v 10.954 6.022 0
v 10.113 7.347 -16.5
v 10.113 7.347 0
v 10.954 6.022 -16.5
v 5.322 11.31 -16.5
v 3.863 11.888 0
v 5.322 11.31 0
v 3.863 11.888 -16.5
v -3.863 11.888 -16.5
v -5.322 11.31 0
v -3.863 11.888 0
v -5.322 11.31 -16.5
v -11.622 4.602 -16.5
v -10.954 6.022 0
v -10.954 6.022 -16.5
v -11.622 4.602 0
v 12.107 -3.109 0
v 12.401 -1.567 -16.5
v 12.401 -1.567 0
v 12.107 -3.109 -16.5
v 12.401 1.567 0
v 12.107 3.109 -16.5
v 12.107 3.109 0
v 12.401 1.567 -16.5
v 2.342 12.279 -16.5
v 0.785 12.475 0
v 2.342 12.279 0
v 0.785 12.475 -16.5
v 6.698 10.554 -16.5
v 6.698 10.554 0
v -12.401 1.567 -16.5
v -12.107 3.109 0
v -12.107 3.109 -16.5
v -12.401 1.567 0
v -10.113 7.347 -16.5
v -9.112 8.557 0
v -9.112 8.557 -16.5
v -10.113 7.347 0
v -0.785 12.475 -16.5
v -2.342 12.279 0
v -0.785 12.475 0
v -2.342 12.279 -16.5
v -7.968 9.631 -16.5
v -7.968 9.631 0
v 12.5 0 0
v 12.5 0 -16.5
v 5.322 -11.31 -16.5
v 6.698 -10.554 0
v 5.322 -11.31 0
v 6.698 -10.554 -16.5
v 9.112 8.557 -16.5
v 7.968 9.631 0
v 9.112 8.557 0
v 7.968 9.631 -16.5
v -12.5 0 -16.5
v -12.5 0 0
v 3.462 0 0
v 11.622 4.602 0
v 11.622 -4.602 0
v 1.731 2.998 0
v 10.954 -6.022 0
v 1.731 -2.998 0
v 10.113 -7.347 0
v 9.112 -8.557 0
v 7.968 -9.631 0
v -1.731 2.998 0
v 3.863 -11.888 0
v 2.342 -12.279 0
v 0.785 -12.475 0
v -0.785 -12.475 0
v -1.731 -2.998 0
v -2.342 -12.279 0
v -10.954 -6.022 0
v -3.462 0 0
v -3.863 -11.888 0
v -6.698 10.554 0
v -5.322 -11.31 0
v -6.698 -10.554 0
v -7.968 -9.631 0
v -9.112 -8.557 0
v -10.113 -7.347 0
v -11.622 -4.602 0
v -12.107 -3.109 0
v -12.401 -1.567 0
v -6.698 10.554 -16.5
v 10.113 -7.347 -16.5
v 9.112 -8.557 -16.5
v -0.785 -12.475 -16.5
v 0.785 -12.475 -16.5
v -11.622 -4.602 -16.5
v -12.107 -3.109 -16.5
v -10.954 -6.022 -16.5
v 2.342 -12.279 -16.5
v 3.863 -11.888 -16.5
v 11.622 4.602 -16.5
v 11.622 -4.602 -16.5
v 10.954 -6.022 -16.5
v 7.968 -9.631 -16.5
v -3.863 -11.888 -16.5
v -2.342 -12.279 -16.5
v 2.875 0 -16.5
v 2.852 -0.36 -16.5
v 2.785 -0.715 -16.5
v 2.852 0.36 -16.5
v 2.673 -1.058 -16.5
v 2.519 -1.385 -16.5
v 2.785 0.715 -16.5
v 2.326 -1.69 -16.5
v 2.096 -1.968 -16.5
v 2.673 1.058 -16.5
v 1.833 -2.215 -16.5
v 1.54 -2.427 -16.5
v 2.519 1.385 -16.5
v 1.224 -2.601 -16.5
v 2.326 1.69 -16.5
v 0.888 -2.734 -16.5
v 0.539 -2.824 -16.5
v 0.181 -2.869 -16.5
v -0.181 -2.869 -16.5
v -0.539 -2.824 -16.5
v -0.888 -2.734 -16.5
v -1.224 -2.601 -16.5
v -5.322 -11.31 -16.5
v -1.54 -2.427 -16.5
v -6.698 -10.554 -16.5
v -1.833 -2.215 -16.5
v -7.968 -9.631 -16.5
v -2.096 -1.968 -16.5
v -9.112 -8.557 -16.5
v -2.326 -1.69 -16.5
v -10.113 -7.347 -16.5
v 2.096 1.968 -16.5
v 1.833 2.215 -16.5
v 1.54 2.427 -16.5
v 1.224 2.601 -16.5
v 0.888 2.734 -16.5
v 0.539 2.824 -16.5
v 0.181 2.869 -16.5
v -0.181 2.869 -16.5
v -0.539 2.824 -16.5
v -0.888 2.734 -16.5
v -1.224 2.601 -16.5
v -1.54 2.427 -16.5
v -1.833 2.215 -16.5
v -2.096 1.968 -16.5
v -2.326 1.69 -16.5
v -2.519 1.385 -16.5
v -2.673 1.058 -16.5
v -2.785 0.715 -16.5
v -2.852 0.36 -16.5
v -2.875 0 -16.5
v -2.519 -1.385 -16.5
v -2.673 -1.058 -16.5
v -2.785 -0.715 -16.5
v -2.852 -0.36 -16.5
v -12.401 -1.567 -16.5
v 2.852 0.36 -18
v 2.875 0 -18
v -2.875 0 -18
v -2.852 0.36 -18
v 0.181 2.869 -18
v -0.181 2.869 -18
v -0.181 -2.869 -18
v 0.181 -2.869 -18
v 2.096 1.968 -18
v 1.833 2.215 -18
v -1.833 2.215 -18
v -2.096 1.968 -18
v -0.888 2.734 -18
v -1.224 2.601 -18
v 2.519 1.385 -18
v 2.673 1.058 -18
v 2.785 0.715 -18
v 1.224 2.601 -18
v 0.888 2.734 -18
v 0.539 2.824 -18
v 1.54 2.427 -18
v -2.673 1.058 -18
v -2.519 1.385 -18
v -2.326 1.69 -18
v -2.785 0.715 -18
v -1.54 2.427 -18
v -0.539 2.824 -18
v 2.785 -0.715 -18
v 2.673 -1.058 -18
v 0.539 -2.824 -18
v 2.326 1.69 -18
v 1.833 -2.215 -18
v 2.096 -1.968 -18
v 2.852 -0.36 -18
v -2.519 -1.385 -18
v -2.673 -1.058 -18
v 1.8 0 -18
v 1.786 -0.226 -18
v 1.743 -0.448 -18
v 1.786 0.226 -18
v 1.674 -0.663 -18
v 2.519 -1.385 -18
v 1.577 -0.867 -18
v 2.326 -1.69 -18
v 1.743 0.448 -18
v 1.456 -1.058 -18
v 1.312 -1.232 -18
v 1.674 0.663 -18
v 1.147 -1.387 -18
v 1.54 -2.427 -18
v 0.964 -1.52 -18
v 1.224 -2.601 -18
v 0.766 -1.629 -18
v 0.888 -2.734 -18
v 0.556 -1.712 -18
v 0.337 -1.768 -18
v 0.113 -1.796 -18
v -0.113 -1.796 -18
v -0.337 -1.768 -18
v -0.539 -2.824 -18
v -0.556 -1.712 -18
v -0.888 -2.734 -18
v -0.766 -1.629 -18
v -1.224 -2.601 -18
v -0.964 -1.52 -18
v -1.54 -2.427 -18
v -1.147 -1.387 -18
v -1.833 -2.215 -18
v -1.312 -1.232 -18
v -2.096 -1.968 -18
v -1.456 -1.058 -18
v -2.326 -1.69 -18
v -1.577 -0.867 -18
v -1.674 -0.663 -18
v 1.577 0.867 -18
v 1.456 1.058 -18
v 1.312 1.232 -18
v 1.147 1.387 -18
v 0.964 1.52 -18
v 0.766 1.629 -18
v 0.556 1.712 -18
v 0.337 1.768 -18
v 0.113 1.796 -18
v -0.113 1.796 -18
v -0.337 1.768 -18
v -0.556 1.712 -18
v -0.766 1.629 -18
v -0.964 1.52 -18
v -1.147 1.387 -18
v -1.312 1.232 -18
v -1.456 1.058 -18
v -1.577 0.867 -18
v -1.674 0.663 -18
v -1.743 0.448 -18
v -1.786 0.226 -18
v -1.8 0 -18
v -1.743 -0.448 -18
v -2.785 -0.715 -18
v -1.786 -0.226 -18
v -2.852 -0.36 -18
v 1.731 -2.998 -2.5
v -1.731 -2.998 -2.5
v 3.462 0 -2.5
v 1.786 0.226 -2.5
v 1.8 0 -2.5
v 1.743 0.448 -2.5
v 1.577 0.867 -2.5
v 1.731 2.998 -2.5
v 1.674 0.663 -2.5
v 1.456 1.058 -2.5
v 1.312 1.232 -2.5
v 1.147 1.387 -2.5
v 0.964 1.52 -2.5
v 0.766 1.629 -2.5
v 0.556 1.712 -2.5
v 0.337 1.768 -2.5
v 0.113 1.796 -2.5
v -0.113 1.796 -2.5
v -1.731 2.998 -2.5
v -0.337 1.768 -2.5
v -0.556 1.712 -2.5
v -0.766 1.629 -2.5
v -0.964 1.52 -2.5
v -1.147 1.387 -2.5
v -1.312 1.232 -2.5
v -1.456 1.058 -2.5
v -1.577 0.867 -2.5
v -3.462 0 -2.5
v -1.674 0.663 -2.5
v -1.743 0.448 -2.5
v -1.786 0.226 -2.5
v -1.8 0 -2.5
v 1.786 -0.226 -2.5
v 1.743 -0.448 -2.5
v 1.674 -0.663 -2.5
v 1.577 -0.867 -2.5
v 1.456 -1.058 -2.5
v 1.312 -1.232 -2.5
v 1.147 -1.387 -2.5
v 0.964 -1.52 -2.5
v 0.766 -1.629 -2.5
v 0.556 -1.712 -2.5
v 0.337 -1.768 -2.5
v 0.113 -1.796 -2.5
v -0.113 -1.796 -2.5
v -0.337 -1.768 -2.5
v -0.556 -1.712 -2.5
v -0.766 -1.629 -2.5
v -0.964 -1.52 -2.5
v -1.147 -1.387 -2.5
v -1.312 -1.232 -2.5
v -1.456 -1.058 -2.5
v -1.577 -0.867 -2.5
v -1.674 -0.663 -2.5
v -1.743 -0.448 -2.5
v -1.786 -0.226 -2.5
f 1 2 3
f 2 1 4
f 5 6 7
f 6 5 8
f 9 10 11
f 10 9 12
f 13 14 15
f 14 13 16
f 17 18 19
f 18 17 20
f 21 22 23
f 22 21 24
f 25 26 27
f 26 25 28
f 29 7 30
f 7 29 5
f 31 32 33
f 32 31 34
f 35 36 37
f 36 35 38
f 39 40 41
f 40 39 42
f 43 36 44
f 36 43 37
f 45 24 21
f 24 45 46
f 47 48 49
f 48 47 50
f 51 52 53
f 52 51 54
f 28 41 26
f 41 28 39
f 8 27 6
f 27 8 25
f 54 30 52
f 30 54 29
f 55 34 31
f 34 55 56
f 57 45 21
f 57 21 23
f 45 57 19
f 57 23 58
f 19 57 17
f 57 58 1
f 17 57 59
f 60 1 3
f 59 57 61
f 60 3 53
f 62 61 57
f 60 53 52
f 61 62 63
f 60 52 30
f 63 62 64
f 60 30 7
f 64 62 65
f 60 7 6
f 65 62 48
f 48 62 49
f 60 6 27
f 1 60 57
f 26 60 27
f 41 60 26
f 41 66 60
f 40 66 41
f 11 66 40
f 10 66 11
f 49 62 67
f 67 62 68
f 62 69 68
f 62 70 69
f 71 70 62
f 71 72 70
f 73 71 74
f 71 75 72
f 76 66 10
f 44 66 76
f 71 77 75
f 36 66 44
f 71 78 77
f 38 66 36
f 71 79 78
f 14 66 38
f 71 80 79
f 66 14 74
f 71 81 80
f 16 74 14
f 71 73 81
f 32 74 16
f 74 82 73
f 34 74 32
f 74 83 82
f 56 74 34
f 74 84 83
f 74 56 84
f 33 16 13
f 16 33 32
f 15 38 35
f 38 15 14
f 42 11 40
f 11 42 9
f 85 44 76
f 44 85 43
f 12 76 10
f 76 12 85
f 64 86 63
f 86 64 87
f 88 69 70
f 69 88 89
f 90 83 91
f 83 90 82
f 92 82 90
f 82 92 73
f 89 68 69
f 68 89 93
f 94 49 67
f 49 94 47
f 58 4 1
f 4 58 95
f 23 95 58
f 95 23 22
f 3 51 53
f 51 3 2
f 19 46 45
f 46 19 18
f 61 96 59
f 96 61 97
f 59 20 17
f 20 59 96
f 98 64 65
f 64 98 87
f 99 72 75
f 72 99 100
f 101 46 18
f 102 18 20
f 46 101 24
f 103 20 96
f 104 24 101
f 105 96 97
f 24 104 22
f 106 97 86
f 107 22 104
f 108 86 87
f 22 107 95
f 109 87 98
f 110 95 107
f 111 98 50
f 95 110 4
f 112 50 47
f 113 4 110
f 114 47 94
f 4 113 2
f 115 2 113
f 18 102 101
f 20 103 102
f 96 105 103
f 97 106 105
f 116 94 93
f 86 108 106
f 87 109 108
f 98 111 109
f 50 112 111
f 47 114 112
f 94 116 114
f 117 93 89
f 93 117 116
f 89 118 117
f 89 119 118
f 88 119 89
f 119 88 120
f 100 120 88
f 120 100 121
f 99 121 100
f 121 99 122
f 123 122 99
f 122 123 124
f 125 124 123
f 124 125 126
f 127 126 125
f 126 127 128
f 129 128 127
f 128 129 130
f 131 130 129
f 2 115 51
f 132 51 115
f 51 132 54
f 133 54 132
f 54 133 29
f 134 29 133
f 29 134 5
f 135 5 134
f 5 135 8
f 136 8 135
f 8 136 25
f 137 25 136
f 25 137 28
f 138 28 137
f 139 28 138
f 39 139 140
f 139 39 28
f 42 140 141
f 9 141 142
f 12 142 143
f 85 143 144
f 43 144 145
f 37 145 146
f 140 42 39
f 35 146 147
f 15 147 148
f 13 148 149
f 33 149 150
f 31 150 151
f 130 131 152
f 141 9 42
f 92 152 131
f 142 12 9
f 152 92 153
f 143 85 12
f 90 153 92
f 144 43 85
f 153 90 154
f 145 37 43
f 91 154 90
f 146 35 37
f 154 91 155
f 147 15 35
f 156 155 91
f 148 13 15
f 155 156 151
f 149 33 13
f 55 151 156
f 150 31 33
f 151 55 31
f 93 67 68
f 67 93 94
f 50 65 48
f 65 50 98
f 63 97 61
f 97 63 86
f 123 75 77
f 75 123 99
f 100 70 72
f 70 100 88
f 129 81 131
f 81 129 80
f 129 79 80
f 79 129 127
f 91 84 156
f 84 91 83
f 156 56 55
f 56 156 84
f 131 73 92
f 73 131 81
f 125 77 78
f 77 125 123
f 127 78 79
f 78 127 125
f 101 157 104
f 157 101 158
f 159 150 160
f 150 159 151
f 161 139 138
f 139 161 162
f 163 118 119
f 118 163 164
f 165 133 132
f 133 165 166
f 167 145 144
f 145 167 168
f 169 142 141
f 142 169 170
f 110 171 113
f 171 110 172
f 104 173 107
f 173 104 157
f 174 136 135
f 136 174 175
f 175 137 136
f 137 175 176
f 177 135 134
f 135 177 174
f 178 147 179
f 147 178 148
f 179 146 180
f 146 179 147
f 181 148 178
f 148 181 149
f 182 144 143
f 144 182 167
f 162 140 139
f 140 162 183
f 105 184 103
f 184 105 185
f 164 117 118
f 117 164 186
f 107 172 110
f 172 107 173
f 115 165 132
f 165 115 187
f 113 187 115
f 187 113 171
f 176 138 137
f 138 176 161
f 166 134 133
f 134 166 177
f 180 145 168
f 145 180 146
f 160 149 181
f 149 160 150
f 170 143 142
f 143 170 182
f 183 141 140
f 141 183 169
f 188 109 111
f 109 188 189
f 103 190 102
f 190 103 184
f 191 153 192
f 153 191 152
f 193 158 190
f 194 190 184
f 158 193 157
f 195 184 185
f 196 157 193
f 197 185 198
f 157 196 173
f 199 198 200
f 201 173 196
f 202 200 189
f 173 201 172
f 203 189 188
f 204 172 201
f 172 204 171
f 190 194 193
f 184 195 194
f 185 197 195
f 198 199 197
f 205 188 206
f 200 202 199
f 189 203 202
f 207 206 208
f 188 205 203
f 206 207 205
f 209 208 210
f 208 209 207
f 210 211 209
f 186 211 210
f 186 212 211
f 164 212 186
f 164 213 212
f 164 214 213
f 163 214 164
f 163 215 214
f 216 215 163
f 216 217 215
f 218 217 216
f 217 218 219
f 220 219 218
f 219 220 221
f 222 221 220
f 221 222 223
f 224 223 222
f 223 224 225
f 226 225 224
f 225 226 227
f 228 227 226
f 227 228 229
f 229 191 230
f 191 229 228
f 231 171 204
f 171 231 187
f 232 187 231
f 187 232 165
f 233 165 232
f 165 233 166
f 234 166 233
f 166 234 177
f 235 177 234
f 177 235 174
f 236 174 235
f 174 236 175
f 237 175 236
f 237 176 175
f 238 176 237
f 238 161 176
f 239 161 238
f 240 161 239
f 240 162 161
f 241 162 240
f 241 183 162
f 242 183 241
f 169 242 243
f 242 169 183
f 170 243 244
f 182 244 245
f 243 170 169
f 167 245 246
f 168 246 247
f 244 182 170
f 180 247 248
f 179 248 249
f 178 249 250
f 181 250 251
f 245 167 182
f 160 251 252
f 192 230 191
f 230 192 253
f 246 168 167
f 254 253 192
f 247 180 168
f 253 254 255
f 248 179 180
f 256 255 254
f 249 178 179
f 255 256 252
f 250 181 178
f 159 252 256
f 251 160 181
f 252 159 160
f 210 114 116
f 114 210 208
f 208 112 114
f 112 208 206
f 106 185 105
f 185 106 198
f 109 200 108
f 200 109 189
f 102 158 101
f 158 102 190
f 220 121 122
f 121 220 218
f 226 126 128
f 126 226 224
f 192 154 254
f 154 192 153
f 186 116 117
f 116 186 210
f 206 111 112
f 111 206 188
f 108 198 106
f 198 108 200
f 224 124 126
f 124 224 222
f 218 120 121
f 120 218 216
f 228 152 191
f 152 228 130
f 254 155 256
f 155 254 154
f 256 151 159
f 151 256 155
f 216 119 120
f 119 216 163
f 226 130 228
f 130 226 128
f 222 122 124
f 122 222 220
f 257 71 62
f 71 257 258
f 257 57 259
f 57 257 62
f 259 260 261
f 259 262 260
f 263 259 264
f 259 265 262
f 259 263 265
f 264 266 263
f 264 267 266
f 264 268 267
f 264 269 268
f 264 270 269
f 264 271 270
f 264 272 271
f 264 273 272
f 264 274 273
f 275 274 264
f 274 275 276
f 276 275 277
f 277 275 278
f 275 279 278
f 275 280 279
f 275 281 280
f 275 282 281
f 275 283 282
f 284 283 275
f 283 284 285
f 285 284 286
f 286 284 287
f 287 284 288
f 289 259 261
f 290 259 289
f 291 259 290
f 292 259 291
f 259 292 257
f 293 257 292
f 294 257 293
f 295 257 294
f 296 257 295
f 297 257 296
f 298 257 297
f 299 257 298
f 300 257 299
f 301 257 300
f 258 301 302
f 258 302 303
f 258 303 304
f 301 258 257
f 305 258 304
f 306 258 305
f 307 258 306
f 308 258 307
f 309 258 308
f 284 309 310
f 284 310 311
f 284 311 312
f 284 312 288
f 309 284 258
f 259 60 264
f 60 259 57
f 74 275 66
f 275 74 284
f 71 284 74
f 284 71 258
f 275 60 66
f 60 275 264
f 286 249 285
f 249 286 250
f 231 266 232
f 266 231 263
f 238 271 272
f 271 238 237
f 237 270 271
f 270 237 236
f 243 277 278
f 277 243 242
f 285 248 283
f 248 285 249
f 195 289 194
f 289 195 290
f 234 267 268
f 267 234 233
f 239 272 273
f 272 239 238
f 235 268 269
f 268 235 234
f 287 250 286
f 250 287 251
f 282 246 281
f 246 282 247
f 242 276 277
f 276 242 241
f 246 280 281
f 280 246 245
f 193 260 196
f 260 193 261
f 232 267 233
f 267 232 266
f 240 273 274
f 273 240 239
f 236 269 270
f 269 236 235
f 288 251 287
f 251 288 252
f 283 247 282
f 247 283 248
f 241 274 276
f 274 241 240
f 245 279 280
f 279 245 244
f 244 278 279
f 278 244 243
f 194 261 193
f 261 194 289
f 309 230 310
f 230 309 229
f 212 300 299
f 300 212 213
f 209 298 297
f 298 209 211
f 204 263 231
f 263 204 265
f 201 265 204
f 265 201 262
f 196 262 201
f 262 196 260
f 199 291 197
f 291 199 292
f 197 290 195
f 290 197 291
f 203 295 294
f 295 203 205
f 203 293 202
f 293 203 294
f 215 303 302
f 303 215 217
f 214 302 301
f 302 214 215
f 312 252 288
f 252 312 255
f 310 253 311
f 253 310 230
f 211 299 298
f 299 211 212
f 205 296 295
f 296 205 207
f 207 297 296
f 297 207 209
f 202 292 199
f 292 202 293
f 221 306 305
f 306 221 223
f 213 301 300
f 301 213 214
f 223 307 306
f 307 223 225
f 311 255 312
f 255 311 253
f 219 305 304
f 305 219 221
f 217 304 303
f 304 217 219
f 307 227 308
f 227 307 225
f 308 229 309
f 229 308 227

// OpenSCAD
$fn = 50;


difference() {
	union() {
		translate(v = [0, 0, -16.5000000000]) {
			cylinder(h = 16.5000000000, r = 12.5000000000);
		}
		#translate(v = [0, 0, -18.0000000000]) {
			cylinder(h = 18, r = 2.8750000000);
		}
	}
	union() {
		translate(v = [0, 0, 0]) {
			rotate(a = [0, 0, 0]) {
				difference() {
					union() {
						translate(v = [0, 0, -2.5000000000]) {
							linear_extrude(height = 2.5000000000) {
								polygon(points = [[3.4620000000, 0.0000000000], [1.7310000000, 2.9981799479], [-1.7310000000, 2.9981799479], [-3.4620000000, 0.0000000000], [-1.7310000000, -2.9981799479], [1.7310000000, -2.9981799479]]);
							}
						}
					}
					union();
				}
			}
		}
		#translate(v = [0, 0, -100.0000000000]) {
			cylinder(h = 200, r = 1.8000000000);
		}
	}
}
